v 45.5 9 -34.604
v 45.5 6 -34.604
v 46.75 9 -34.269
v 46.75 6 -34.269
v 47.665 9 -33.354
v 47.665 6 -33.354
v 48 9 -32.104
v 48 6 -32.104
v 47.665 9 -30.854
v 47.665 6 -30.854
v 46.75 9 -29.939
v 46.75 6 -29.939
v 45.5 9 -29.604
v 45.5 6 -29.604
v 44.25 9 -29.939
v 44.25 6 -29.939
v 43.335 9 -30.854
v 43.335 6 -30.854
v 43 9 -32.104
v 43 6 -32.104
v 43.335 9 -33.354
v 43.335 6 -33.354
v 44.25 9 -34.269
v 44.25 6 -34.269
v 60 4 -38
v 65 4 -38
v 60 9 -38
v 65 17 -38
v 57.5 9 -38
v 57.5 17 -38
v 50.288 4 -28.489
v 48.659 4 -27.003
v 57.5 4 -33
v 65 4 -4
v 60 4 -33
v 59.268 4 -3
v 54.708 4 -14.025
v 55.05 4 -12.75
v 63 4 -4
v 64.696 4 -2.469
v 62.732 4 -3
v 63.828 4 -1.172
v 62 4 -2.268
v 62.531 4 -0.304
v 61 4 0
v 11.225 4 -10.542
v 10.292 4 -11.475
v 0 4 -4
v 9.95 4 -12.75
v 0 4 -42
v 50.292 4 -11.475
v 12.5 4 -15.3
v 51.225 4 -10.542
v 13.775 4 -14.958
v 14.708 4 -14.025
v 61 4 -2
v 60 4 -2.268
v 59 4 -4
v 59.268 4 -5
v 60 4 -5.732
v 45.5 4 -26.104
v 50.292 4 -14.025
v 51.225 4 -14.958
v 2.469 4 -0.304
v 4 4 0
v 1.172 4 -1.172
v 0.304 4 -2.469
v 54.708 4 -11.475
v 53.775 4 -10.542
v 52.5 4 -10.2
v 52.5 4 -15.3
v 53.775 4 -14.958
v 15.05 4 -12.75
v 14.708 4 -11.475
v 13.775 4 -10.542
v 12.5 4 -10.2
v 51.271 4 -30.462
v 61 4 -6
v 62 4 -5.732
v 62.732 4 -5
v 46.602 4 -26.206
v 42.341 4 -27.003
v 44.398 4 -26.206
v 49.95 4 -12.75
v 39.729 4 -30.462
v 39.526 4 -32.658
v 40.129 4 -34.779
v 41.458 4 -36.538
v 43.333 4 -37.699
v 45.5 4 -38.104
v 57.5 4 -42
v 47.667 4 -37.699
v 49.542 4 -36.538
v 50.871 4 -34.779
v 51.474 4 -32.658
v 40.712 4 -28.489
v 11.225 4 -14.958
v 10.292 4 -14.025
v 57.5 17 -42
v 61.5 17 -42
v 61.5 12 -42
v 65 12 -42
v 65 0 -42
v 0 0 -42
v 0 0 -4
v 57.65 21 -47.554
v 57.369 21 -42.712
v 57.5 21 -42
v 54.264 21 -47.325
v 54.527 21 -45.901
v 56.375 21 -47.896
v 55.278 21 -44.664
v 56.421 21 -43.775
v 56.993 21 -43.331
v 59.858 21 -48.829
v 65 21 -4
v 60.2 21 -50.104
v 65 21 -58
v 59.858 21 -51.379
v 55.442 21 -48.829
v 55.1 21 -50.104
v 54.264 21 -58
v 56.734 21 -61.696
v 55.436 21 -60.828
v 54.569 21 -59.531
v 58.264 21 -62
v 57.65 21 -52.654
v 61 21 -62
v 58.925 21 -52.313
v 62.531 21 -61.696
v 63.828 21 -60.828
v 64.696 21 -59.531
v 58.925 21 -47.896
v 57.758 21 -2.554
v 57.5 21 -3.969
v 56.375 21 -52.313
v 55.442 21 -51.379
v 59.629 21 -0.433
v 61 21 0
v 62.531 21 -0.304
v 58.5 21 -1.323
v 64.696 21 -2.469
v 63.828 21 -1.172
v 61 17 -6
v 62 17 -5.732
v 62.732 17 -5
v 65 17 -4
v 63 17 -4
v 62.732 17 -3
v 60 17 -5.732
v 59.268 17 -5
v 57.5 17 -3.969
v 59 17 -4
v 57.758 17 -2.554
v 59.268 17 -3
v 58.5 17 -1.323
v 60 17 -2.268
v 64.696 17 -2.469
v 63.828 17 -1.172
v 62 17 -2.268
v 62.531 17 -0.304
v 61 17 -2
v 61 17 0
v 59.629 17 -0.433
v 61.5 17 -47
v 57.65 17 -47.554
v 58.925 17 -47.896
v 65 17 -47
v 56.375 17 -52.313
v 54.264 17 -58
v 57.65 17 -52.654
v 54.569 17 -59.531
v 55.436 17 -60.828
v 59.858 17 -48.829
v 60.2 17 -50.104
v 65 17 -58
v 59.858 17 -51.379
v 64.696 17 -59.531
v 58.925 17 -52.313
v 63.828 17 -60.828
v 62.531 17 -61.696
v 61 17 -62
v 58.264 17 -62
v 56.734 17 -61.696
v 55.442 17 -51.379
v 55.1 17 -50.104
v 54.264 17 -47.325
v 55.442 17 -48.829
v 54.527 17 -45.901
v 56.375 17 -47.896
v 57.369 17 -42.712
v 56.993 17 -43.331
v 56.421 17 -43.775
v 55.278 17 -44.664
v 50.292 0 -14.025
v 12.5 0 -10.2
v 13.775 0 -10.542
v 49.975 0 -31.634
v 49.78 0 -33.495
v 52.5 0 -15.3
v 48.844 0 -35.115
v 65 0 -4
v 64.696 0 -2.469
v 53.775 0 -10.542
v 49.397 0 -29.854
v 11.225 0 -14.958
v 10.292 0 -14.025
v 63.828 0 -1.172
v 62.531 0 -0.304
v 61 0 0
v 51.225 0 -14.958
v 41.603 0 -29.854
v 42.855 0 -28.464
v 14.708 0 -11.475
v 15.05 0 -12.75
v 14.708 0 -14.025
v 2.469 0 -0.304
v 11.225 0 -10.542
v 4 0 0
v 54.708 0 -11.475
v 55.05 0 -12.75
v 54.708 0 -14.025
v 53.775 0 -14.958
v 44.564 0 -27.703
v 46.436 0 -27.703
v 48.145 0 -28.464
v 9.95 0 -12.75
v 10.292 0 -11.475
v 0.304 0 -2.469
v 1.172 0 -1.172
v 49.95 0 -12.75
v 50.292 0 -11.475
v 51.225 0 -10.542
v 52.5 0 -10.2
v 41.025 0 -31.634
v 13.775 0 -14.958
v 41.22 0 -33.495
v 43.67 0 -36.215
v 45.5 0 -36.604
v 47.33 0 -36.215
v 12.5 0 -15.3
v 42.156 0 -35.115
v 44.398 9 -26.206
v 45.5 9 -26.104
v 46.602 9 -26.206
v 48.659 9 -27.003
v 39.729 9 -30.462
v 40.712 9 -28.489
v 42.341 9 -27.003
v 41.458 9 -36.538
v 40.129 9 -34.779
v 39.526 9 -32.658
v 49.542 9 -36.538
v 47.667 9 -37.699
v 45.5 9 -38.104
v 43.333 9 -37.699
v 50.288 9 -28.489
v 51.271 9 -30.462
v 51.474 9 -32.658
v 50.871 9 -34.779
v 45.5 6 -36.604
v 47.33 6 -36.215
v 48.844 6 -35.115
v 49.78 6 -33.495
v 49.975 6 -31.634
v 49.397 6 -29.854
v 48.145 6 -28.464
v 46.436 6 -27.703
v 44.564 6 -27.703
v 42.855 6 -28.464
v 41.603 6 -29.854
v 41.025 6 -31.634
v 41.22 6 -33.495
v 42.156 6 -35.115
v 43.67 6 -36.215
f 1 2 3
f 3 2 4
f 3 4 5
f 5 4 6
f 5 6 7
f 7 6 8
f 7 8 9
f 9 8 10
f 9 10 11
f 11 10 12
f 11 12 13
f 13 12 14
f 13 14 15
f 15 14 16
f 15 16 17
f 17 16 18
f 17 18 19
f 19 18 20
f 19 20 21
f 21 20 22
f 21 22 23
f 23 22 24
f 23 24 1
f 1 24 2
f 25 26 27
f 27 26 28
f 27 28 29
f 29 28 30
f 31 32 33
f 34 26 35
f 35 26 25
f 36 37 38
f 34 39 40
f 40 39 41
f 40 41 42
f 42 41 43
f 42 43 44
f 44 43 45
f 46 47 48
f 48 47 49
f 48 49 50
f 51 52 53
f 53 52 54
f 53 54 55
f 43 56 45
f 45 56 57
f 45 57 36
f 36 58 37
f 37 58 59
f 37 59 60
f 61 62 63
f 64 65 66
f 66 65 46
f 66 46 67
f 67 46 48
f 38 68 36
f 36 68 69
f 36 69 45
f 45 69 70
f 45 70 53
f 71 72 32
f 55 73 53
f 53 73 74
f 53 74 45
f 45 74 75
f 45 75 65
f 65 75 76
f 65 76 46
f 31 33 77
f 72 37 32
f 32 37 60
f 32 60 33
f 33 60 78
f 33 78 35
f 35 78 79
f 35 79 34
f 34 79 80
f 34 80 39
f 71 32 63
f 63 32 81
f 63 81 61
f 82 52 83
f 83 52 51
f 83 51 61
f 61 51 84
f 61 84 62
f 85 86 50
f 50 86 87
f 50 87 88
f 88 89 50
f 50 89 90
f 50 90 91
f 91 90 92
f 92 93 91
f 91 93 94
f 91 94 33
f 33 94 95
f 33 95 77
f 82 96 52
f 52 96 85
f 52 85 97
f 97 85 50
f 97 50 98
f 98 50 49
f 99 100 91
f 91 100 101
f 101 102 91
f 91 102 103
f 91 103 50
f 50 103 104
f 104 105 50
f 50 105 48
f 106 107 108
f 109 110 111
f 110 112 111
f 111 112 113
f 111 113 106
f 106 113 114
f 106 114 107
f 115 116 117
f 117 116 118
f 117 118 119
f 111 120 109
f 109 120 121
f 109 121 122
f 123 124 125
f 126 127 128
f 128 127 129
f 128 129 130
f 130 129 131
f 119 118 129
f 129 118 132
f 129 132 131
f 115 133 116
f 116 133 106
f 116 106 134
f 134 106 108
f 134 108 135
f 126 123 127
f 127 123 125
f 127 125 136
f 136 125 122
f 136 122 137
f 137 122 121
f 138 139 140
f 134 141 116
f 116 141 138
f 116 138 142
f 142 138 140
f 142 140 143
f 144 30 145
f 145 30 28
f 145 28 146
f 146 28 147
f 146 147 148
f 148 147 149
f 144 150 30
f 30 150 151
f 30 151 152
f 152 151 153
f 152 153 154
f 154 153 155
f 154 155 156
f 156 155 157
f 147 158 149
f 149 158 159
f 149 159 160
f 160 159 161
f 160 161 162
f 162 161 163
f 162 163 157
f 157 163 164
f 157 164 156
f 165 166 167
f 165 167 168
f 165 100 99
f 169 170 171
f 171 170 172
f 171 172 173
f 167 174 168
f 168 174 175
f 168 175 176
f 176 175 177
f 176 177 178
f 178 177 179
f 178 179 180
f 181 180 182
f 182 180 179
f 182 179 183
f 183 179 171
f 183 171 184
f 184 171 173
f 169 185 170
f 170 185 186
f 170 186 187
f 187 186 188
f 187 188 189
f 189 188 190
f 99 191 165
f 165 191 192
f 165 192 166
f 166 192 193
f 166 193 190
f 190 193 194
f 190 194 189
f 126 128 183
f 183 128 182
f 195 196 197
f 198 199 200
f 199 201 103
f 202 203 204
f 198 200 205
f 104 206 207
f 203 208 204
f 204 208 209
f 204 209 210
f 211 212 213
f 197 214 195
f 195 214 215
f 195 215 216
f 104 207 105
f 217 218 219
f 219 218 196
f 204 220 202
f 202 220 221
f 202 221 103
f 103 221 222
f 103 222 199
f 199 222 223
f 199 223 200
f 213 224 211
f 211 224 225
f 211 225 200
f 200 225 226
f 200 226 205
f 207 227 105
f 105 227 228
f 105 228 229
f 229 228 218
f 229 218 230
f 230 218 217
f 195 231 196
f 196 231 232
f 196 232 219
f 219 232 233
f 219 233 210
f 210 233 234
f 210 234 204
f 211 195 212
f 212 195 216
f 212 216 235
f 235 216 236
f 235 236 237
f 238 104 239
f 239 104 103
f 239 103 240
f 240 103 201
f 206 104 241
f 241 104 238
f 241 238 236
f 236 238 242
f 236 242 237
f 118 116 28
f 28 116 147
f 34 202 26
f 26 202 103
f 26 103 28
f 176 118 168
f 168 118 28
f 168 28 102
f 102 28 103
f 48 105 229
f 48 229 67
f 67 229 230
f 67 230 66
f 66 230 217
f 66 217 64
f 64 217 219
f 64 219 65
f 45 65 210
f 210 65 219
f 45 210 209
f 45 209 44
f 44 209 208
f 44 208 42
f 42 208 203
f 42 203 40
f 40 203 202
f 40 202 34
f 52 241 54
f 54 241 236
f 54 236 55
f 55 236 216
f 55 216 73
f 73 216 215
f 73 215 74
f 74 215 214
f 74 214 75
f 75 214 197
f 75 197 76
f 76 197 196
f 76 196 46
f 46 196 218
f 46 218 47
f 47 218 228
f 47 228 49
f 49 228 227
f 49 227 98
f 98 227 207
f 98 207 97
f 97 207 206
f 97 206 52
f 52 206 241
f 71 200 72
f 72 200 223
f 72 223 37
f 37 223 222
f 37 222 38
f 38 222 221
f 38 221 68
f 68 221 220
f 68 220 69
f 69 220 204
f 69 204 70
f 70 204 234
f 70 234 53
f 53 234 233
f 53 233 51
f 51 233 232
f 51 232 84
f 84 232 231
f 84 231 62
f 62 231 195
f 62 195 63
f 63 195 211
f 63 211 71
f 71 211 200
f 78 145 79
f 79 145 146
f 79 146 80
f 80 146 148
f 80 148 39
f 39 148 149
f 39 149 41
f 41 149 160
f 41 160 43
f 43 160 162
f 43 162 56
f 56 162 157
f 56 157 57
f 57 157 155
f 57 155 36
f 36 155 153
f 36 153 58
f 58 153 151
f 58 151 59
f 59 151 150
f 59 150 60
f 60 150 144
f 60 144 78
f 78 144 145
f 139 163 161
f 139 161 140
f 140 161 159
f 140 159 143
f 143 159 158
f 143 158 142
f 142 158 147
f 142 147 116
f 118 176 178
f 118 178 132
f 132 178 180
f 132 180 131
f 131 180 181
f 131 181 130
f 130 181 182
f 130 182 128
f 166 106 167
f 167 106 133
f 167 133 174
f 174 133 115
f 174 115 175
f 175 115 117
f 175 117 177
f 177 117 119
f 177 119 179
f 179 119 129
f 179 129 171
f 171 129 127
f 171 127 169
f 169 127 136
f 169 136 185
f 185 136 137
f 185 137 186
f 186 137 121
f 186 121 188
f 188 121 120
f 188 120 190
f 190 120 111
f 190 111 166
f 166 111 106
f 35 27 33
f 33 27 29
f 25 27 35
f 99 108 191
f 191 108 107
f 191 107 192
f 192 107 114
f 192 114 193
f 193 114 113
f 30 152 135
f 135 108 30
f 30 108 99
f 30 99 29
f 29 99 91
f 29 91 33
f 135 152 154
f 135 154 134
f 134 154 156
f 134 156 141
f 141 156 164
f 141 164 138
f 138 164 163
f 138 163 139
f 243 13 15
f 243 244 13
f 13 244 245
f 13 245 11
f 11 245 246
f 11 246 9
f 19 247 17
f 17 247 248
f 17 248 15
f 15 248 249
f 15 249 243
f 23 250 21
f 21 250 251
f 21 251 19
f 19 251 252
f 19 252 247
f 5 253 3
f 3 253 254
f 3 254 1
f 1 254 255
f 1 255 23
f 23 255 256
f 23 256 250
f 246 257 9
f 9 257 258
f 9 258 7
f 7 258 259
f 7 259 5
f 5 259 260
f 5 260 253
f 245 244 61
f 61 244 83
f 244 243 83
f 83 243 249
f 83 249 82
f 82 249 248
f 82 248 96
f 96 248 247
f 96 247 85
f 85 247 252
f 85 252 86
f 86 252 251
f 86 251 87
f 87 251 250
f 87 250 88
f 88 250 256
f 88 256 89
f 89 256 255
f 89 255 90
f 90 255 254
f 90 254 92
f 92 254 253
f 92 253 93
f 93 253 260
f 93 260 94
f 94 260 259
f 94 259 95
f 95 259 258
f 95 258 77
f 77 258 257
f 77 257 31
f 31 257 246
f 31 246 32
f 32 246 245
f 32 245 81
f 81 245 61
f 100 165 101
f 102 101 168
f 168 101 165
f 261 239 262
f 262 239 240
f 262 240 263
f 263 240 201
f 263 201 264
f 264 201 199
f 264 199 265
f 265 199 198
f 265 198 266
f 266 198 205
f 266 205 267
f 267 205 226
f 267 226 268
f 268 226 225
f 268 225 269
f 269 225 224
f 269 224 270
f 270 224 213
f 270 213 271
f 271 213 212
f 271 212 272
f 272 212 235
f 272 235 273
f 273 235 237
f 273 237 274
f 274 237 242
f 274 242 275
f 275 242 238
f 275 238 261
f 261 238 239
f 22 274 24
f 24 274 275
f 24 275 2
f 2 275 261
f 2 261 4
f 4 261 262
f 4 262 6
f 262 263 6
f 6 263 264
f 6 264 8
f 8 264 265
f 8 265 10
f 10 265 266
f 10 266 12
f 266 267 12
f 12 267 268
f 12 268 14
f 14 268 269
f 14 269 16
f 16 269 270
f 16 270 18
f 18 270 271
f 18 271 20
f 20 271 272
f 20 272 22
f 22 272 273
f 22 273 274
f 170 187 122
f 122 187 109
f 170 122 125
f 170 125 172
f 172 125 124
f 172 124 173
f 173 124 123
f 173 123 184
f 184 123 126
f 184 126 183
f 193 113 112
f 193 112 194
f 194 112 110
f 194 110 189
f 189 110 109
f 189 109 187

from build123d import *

# Parameters (mm, degrees)
SKETCH1_R                = 2.55
BOSS_EXTRUDE1_DEPTH      = 4
SKETCH2_R                = 2
SKETCH2_W                = 65
SKETCH2_H                = 4
BOSS_EXTRUDE2_DEPTH      = 13
BOSS_EXTRUDE3_DEPTH      = 4
SKETCH4_W                = 65
SKETCH4_H                = 4
BOSS_EXTRUDE4_DEPTH      = 20
FILLET1_R                = 4
SKETCH6_R                = 2.55
CUT_EXTRUDE1_DEPTH       = 20
SKETCH7_W                = 46
SKETCH7_H                = 4
CUT_EXTRUDE2_DEPTH       = 80
BOSS_EXTRUDE6_DEPTH      = 2.5
BOSS_EXTRUDE6_DEPTH_BACK = 2.5
CUT_EXTRUDE3_REACH       = 94.25
FILLET2_R                = 4
SKETCH8_R                = 6
SKETCH8_R_2              = 2.5
BOSS_EXTRUDE5_DEPTH      = 5
FILLET3_R                = 4
BOSS_EXTRUDE7_START      = 4
BOSS_EXTRUDE7_DEPTH      = 3.5
SKETCH13_R               = 4.5
CUT_EXTRUDE4_DEPTH       = 6
SKETCH14_W               = 13.282344927
SKETCH14_H               = 18
CUT_EXTRUDE5_DEPTH       = 6
FILLET5_R                = 4


with BuildPart() as part:
    # Sketch1 → Boss-Extrude1 (new body)
    with BuildSketch(Plane(origin=(0, 0, 0), x_dir=(1, 0, 0), z_dir=(0, 1, 0))):
        with BuildLine():
            Line((4, 0), (61, 0))
            ThreePointArc((61, 0), (63.828427125, 1.171572875), (65, 4))
            Line((65, 4), (65, 42))
            Line((65, 42), (0, 42))
            Line((0, 42), (0, 4))
            ThreePointArc((0, 4), (1.171572875, 1.171572875), (4, 0))
        make_face()
        with Locations(Location((12.5, 12.75, 0), (0, 0, 270))):
            Circle(SKETCH1_R, mode=Mode.SUBTRACT)
        with Locations(Location((52.5, 12.75, 0), (0, 0, 270))):
            Circle(SKETCH1_R, mode=Mode.SUBTRACT)
    extrude(amount=BOSS_EXTRUDE1_DEPTH)

    # Sketch2 → Boss-Extrude2 (add)
    with BuildSketch(Plane(origin=(0, 4, 0), x_dir=(1, 0, 0), z_dir=(0, 1, 0))):
        with Locations(Location((61, 4, 0), (0, 0, 90))):
            Circle(SKETCH2_R)
        with Locations(Location((4, 4, 0), (0, 0, 90))):
            Circle(SKETCH2_R)
        with Locations((32.5, 40)):
            Rectangle(SKETCH2_W, SKETCH2_H)
    extrude(amount=BOSS_EXTRUDE2_DEPTH)

    # Sketch3 → Boss-Extrude3 (add)
    with BuildSketch(Plane(origin=(0, 17, 0), x_dir=(1, 0, 0), z_dir=(0, 1, 0))):
        with BuildLine():
            Line((0, 42), (65, 42))
            Line((65, 42), (65, 4))
            ThreePointArc((65, 4), (63.828427125, 1.171572875), (61, 0))
            Line((61, 0), (4, 0))
            ThreePointArc((4, 0), (1.171572875, 1.171572875), (0, 4))
            Line((0, 4), (0, 42))
        make_face()
    extrude(amount=BOSS_EXTRUDE3_DEPTH)

    # Sketch4 → Boss-Extrude4 (add)
    with BuildSketch(Plane(origin=(0, 0, -42), x_dir=(-1, 0, 0), z_dir=(0, 0, -1))):
        with Locations((-32.5, 19)):
            Rectangle(SKETCH4_W, SKETCH4_H)
    extrude(amount=BOSS_EXTRUDE4_DEPTH)

    # Fillet1
    fillet1_edges = [part.edges().sort_by_distance(p)[0] for p in [
        (65, 19, -62),
        (0, 19, -62),
    ]]
    fillet(fillet1_edges, radius=FILLET1_R)

    # Sketch6 → Cut-Extrude1 (cut)
    with BuildSketch(Plane(origin=(0, 21, 0), x_dir=(1, 0, 0), z_dir=(0, 1, 0))):
        with Locations(Location((57.65, 50.10433299, 0), (0, 0, 270))):
            Circle(SKETCH6_R)
        with Locations(Location((45.5, 32.10433299, 0), (0, 0, 270))):
            Circle(SKETCH6_R)
    extrude(amount=-CUT_EXTRUDE1_DEPTH, mode=Mode.SUBTRACT)

    # Sketch7 → Cut-Extrude2 (cut)
    with BuildSketch(Plane.XY):
        Polygon((4, 17), (4, 21), (0, 21), (0, 4), (50, 4), (50, 17), align=None)
        with Locations((27, 19)):
            Rectangle(SKETCH7_W, SKETCH7_H)
    extrude(amount=-CUT_EXTRUDE2_DEPTH, mode=Mode.SUBTRACT)

    # Sketch10 → Boss-Extrude6 (add, two sides: drawn at the far end of the back side and taken through both)
    with BuildSketch(Plane(origin=(57.5, 0, 0), x_dir=(0, 0, -1), z_dir=(1, 0, 0)).offset(-BOSS_EXTRUDE6_DEPTH_BACK)):
        Polygon((33, 4), (38, 9), (38, 4), align=None)
    extrude(amount=BOSS_EXTRUDE6_DEPTH + BOSS_EXTRUDE6_DEPTH_BACK)

    # Cut-Extrude3: up to this face of the body (flat: up to its plane)
    cut_extrude3_end = Plane(part.part.faces().sort_by_distance((31.428078694, 4, -20.594205602))[0])
    # Sketch11 → Cut-Extrude3 (cut, up to the picked face)
    with BuildSketch(Plane(origin=(0, 21, 0), x_dir=(1, 0, 0), z_dir=(0, 1, 0)), mode=Mode.PRIVATE) as cut_extrude3_sk1:
        with BuildLine():
            Line((57.5, 0), (57.5, 42))
            ThreePointArc((57.5, 42), (56.914213562, 43.414213562), (55.5, 44))
            Line((55.5, 44), (50, 44))
            Line((50, 44), (50, 0))
            Line((50, 0), (57.5, 0))
        make_face()
    cut_extrude3_tool1 = split(extrude(cut_extrude3_sk1.sketch, amount=-CUT_EXTRUDE3_REACH, mode=Mode.PRIVATE), bisect_by=cut_extrude3_end, keep=Keep.BOTH, mode=Mode.PRIVATE)
    add(cut_extrude3_tool1.solids().sort_by(Axis((53.741385, 21, -21.943789), (0, -1, 0)))[0], mode=Mode.SUBTRACT)

    # Fillet2
    # the kernel refuses this fillet: 4 mm, written as the material it takes off along each edge
    with BuildSketch(Plane(origin=(57.5, 30.921567416, 0), x_dir=(1, 0, 0), z_dir=(0, -1, 0))) as fillet2_piece_1:
        with BuildLine():
            CenterArc((4, -3.968626967), FILLET2_R, 97.180755781, 82.819244219)
            Line((0, -3.968626967), (-0.08, -3.968626967))
            Line((-0.08, -3.968626967), (-0.08, 0))
            Line((-0.08, 0), (0, 0.08))
            ThreePointArc((0, 0.08), (1.75, 0.08), (3.49, 0.079372539))
            Line((3.49, 0.079372539), (3.5, 0))
        make_face()
    extrude(amount=23.843134833, mode=Mode.SUBTRACT)

    # Sketch8 → Boss-Extrude5 (add)
    with BuildSketch(Plane(origin=(0, 4, 0), x_dir=(1, 0, 0), z_dir=(0, 1, 0))):
        with Locations(Location((45.5, 32.10433299, 0), (0, 0, 270))):
            Circle(SKETCH8_R)
        with Locations(Location((45.5, 32.10433299, 0), (0, 0, 270))):
            Circle(SKETCH8_R_2, mode=Mode.SUBTRACT)
    extrude(amount=BOSS_EXTRUDE5_DEPTH)

    # Fillet3
    fillet3_edges = [part.edges().sort_by_distance(p)[0] for p in [
        (50, 19, -62),
    ]]
    fillet(fillet3_edges, radius=FILLET3_R)

    # Sketch12 → Boss-Extrude7 (add)
    with BuildSketch(Plane(origin=(57.5, 0, 0), x_dir=(0, 0, -1), z_dir=(1, 0, 0)).offset(BOSS_EXTRUDE7_START)):
        Polygon((42, 12), (47, 17), (42, 17), align=None)
    extrude(amount=BOSS_EXTRUDE7_DEPTH)

    # Sketch13 → Cut-Extrude4 (cut)
    with BuildSketch(Plane.XZ):
        with Locations(Location((45.5, -32.10433299, 0), (0, 0, 270))):
            Circle(SKETCH13_R)
    extrude(amount=-CUT_EXTRUDE4_DEPTH, mode=Mode.SUBTRACT)

    # Sketch14 → Cut-Extrude5 (cut)
    with BuildSketch(Plane(origin=(0, 21, 0), x_dir=(1, 0, 0), z_dir=(0, 1, 0))):
        with Locations((47.623272126, 53)):
            Rectangle(SKETCH14_W, SKETCH14_H)
    extrude(amount=-CUT_EXTRUDE5_DEPTH, mode=Mode.SUBTRACT)

    # Fillet5
    fillet5_edges = [part.edges().sort_by_distance(p)[0] for p in [
        (54.264444589, 19, -62),
        (54.264444589, 19, -44),
    ]]
    fillet(fillet5_edges, radius=FILLET5_R)


solid = part.part
